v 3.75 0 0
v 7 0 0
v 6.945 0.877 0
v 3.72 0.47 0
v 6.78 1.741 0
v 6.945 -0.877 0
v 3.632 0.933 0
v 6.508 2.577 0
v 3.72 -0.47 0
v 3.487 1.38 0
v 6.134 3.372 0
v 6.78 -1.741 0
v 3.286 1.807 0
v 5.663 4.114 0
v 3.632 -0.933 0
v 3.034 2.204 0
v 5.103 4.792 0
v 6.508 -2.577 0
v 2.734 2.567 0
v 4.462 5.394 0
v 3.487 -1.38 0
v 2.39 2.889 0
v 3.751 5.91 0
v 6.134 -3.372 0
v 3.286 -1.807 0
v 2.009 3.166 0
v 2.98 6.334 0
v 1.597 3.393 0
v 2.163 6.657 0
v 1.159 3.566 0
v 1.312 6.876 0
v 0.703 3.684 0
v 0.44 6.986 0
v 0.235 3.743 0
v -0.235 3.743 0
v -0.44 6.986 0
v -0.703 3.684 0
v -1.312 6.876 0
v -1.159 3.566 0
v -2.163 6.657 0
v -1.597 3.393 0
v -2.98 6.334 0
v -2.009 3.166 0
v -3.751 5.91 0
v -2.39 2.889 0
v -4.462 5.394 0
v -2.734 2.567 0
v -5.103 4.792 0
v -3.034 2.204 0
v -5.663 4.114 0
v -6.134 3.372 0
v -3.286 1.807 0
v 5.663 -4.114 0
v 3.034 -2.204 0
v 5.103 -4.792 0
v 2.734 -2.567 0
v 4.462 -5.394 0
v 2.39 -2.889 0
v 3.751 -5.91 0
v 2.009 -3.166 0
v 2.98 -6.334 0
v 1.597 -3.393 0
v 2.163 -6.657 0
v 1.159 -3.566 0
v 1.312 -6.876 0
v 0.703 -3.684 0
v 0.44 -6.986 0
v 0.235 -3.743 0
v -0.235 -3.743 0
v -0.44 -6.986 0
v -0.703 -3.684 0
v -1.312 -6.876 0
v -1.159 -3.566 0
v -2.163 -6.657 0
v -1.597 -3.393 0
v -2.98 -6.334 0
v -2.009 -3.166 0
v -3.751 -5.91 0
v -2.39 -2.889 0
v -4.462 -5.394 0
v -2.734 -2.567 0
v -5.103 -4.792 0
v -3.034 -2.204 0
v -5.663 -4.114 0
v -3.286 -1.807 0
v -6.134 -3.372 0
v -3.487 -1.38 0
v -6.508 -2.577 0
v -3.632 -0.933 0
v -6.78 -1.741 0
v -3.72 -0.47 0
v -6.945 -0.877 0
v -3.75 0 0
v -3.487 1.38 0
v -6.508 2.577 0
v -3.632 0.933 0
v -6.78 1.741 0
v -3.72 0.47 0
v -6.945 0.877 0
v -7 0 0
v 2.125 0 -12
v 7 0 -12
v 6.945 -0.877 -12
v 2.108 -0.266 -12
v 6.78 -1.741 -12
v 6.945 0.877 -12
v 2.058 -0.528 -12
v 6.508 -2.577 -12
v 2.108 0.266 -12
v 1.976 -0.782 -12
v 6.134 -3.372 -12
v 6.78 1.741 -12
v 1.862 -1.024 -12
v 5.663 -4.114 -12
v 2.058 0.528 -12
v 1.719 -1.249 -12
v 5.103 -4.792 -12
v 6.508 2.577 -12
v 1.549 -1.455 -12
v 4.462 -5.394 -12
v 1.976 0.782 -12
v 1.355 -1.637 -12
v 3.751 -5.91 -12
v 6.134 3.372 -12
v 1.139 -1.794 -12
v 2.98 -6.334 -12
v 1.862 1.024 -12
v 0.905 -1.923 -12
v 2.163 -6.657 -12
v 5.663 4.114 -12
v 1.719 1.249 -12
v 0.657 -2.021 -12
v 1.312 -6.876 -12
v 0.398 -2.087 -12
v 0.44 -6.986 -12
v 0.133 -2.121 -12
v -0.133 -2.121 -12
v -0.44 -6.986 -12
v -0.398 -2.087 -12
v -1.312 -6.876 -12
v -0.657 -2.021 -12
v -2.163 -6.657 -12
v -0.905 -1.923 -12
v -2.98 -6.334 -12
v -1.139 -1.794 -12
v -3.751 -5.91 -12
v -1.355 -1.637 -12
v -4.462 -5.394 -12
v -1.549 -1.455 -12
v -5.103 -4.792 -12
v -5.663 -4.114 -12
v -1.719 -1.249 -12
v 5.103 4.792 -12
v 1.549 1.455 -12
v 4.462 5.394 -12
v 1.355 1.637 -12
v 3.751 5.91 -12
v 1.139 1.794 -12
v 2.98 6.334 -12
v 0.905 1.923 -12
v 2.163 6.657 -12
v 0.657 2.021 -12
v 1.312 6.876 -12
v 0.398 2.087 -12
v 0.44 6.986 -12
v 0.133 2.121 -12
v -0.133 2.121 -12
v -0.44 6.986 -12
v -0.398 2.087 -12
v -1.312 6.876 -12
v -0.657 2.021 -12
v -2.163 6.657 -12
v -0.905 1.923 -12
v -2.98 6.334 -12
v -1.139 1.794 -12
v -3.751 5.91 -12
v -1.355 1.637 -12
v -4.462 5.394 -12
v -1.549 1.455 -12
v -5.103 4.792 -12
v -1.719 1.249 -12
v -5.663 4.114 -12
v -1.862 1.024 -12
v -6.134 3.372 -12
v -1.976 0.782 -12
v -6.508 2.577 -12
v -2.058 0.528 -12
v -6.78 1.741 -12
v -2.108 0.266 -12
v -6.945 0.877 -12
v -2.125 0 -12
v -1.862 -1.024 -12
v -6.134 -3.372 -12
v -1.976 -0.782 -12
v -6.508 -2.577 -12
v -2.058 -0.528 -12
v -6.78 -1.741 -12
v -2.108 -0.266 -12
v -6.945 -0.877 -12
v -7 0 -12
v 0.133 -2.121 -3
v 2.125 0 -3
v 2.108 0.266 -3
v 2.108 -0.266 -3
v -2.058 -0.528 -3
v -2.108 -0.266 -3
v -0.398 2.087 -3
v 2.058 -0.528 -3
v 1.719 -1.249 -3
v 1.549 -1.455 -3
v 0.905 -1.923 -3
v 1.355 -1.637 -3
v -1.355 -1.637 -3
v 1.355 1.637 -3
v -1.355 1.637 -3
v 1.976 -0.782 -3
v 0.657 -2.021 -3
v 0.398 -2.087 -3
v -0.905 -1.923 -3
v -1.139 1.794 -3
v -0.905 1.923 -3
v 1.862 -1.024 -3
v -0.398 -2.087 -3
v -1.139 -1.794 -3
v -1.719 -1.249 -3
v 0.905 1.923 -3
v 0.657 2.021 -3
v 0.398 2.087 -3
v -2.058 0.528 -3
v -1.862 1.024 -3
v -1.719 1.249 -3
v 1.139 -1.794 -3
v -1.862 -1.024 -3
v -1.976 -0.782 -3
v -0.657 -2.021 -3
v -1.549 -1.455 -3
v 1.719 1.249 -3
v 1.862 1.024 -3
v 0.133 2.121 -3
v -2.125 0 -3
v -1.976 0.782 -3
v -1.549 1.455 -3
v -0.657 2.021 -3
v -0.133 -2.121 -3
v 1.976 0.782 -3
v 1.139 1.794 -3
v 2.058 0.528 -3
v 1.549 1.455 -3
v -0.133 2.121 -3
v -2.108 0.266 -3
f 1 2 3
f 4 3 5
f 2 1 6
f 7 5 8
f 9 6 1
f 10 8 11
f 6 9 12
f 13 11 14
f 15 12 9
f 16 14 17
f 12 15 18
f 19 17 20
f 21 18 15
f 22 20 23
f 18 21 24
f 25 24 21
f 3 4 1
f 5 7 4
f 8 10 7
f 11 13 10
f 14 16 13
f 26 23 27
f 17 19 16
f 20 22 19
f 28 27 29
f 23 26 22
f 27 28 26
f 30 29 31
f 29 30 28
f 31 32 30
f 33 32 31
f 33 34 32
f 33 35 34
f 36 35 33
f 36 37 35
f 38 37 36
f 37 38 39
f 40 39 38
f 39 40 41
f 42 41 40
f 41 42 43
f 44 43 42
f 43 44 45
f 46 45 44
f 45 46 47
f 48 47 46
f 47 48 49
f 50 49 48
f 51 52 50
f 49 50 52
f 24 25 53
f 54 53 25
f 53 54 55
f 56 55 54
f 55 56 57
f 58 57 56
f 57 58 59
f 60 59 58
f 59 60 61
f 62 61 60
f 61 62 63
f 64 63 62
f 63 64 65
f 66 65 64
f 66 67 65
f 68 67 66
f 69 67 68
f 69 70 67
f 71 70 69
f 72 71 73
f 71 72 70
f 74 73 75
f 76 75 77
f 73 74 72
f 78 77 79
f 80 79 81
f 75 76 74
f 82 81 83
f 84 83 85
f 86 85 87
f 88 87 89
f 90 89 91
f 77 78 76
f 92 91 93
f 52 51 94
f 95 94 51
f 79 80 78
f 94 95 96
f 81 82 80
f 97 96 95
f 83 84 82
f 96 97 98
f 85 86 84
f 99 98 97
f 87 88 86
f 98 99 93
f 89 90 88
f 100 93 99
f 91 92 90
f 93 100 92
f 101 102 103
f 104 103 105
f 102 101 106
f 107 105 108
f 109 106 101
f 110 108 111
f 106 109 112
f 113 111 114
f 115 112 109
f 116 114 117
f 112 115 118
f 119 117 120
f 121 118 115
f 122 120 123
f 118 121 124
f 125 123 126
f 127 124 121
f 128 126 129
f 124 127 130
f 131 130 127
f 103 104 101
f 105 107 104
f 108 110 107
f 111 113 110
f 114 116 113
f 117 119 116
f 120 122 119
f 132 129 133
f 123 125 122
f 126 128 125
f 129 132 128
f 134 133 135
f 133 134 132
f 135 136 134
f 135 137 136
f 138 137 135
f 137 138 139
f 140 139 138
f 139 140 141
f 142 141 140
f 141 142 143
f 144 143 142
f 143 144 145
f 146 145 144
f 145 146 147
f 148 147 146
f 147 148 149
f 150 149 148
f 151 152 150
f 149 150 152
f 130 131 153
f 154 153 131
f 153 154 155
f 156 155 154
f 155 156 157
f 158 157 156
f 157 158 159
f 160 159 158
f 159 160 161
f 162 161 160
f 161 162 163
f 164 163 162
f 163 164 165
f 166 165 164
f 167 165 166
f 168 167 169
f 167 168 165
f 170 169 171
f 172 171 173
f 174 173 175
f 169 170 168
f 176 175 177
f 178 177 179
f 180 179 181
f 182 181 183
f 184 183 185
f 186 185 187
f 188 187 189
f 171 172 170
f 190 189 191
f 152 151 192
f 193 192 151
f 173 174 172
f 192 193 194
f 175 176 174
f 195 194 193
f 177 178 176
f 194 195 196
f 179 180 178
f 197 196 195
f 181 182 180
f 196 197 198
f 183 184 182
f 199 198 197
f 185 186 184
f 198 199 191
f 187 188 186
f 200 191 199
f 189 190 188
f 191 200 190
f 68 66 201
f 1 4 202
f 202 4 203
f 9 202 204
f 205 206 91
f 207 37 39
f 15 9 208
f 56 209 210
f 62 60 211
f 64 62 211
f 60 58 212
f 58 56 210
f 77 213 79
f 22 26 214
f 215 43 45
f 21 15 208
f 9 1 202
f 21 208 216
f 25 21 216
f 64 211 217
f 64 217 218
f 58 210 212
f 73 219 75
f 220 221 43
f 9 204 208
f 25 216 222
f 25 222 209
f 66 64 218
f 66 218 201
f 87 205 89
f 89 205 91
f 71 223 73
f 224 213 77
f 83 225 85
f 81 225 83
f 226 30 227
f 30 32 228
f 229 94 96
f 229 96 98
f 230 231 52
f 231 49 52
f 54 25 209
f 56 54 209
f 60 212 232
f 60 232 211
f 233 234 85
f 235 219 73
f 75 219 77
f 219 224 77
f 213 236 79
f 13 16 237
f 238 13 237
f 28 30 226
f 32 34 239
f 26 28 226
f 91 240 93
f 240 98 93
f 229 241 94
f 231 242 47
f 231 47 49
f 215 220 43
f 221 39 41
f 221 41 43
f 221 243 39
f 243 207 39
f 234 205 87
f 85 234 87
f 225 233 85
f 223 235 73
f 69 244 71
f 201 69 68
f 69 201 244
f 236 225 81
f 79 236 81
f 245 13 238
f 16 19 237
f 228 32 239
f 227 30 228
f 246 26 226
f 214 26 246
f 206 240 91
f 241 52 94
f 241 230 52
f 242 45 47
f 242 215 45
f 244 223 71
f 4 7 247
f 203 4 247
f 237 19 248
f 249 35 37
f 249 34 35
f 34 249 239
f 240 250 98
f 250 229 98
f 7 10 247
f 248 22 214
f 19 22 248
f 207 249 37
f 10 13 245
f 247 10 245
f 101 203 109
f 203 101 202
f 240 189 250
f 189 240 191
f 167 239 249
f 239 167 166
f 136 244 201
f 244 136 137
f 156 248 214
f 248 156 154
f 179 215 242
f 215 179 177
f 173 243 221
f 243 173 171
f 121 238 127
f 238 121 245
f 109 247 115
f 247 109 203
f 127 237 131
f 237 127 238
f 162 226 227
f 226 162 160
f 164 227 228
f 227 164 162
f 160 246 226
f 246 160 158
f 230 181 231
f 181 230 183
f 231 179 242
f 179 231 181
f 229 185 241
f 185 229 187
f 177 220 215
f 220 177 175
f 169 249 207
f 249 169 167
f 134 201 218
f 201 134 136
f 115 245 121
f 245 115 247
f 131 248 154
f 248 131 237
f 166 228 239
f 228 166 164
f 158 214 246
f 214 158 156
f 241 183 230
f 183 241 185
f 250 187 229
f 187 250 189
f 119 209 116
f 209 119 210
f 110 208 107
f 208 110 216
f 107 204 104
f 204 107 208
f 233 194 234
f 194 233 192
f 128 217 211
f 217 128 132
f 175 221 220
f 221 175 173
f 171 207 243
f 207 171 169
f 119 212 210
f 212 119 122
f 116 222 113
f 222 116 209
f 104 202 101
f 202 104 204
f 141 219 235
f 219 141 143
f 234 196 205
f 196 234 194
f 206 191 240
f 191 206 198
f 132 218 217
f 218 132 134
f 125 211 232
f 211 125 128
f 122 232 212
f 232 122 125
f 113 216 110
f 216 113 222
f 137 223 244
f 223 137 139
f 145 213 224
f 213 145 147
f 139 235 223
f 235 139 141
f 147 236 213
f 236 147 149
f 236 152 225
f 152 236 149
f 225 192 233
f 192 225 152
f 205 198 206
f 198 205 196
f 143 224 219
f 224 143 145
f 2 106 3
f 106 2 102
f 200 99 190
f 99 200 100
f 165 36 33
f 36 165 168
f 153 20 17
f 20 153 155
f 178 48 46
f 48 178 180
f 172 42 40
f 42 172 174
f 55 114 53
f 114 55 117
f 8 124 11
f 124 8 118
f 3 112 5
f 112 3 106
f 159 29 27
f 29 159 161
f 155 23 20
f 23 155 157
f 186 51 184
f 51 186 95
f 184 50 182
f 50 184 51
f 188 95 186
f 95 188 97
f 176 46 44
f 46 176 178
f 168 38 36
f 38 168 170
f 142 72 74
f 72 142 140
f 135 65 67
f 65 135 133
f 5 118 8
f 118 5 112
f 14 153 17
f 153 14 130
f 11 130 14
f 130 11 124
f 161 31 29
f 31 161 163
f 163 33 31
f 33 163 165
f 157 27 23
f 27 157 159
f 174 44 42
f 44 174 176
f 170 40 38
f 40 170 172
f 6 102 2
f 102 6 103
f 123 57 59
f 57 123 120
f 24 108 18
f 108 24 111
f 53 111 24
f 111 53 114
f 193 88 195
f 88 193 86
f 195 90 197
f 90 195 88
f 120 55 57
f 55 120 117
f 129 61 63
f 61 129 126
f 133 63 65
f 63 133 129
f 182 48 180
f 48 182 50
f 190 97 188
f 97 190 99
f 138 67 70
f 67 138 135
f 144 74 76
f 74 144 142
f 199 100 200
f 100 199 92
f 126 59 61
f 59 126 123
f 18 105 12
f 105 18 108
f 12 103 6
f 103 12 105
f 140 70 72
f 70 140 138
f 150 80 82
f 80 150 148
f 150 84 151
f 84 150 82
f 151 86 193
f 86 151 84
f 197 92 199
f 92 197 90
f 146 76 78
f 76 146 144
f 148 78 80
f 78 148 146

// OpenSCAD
$fn = 50;


difference() {
	union() {
		translate(v = [0, 0, -12.0000000000]) {
			cylinder(h = 12, r = 7.0000000000);
		}
		cylinder(h = 0, r = 16.0000000000);
	}
	union() {
		translate(v = [0, 0, 0]) {
			rotate(a = [0, 0, 0]) {
				difference() {
					union() {
						#translate(v = [0, 0, -12.0000000000]) {
							cylinder(h = 12, r = 2.0000000000);
						}
						#translate(v = [0, 0, -3]) {
							cylinder(h = 3, r = 7.0000000000, r1 = 2.1250000000, r2 = 3.7500000000);
						}
						#translate(v = [0, 0, -12.0000000000]) {
							cylinder(h = 12, r = 2.1250000000);
						}
						#translate(v = [0, 0, -12.0000000000]) {
							cylinder(h = 12, r = 2.0000000000);
						}
					}
					union();
				}
			}
		}
	}
}
